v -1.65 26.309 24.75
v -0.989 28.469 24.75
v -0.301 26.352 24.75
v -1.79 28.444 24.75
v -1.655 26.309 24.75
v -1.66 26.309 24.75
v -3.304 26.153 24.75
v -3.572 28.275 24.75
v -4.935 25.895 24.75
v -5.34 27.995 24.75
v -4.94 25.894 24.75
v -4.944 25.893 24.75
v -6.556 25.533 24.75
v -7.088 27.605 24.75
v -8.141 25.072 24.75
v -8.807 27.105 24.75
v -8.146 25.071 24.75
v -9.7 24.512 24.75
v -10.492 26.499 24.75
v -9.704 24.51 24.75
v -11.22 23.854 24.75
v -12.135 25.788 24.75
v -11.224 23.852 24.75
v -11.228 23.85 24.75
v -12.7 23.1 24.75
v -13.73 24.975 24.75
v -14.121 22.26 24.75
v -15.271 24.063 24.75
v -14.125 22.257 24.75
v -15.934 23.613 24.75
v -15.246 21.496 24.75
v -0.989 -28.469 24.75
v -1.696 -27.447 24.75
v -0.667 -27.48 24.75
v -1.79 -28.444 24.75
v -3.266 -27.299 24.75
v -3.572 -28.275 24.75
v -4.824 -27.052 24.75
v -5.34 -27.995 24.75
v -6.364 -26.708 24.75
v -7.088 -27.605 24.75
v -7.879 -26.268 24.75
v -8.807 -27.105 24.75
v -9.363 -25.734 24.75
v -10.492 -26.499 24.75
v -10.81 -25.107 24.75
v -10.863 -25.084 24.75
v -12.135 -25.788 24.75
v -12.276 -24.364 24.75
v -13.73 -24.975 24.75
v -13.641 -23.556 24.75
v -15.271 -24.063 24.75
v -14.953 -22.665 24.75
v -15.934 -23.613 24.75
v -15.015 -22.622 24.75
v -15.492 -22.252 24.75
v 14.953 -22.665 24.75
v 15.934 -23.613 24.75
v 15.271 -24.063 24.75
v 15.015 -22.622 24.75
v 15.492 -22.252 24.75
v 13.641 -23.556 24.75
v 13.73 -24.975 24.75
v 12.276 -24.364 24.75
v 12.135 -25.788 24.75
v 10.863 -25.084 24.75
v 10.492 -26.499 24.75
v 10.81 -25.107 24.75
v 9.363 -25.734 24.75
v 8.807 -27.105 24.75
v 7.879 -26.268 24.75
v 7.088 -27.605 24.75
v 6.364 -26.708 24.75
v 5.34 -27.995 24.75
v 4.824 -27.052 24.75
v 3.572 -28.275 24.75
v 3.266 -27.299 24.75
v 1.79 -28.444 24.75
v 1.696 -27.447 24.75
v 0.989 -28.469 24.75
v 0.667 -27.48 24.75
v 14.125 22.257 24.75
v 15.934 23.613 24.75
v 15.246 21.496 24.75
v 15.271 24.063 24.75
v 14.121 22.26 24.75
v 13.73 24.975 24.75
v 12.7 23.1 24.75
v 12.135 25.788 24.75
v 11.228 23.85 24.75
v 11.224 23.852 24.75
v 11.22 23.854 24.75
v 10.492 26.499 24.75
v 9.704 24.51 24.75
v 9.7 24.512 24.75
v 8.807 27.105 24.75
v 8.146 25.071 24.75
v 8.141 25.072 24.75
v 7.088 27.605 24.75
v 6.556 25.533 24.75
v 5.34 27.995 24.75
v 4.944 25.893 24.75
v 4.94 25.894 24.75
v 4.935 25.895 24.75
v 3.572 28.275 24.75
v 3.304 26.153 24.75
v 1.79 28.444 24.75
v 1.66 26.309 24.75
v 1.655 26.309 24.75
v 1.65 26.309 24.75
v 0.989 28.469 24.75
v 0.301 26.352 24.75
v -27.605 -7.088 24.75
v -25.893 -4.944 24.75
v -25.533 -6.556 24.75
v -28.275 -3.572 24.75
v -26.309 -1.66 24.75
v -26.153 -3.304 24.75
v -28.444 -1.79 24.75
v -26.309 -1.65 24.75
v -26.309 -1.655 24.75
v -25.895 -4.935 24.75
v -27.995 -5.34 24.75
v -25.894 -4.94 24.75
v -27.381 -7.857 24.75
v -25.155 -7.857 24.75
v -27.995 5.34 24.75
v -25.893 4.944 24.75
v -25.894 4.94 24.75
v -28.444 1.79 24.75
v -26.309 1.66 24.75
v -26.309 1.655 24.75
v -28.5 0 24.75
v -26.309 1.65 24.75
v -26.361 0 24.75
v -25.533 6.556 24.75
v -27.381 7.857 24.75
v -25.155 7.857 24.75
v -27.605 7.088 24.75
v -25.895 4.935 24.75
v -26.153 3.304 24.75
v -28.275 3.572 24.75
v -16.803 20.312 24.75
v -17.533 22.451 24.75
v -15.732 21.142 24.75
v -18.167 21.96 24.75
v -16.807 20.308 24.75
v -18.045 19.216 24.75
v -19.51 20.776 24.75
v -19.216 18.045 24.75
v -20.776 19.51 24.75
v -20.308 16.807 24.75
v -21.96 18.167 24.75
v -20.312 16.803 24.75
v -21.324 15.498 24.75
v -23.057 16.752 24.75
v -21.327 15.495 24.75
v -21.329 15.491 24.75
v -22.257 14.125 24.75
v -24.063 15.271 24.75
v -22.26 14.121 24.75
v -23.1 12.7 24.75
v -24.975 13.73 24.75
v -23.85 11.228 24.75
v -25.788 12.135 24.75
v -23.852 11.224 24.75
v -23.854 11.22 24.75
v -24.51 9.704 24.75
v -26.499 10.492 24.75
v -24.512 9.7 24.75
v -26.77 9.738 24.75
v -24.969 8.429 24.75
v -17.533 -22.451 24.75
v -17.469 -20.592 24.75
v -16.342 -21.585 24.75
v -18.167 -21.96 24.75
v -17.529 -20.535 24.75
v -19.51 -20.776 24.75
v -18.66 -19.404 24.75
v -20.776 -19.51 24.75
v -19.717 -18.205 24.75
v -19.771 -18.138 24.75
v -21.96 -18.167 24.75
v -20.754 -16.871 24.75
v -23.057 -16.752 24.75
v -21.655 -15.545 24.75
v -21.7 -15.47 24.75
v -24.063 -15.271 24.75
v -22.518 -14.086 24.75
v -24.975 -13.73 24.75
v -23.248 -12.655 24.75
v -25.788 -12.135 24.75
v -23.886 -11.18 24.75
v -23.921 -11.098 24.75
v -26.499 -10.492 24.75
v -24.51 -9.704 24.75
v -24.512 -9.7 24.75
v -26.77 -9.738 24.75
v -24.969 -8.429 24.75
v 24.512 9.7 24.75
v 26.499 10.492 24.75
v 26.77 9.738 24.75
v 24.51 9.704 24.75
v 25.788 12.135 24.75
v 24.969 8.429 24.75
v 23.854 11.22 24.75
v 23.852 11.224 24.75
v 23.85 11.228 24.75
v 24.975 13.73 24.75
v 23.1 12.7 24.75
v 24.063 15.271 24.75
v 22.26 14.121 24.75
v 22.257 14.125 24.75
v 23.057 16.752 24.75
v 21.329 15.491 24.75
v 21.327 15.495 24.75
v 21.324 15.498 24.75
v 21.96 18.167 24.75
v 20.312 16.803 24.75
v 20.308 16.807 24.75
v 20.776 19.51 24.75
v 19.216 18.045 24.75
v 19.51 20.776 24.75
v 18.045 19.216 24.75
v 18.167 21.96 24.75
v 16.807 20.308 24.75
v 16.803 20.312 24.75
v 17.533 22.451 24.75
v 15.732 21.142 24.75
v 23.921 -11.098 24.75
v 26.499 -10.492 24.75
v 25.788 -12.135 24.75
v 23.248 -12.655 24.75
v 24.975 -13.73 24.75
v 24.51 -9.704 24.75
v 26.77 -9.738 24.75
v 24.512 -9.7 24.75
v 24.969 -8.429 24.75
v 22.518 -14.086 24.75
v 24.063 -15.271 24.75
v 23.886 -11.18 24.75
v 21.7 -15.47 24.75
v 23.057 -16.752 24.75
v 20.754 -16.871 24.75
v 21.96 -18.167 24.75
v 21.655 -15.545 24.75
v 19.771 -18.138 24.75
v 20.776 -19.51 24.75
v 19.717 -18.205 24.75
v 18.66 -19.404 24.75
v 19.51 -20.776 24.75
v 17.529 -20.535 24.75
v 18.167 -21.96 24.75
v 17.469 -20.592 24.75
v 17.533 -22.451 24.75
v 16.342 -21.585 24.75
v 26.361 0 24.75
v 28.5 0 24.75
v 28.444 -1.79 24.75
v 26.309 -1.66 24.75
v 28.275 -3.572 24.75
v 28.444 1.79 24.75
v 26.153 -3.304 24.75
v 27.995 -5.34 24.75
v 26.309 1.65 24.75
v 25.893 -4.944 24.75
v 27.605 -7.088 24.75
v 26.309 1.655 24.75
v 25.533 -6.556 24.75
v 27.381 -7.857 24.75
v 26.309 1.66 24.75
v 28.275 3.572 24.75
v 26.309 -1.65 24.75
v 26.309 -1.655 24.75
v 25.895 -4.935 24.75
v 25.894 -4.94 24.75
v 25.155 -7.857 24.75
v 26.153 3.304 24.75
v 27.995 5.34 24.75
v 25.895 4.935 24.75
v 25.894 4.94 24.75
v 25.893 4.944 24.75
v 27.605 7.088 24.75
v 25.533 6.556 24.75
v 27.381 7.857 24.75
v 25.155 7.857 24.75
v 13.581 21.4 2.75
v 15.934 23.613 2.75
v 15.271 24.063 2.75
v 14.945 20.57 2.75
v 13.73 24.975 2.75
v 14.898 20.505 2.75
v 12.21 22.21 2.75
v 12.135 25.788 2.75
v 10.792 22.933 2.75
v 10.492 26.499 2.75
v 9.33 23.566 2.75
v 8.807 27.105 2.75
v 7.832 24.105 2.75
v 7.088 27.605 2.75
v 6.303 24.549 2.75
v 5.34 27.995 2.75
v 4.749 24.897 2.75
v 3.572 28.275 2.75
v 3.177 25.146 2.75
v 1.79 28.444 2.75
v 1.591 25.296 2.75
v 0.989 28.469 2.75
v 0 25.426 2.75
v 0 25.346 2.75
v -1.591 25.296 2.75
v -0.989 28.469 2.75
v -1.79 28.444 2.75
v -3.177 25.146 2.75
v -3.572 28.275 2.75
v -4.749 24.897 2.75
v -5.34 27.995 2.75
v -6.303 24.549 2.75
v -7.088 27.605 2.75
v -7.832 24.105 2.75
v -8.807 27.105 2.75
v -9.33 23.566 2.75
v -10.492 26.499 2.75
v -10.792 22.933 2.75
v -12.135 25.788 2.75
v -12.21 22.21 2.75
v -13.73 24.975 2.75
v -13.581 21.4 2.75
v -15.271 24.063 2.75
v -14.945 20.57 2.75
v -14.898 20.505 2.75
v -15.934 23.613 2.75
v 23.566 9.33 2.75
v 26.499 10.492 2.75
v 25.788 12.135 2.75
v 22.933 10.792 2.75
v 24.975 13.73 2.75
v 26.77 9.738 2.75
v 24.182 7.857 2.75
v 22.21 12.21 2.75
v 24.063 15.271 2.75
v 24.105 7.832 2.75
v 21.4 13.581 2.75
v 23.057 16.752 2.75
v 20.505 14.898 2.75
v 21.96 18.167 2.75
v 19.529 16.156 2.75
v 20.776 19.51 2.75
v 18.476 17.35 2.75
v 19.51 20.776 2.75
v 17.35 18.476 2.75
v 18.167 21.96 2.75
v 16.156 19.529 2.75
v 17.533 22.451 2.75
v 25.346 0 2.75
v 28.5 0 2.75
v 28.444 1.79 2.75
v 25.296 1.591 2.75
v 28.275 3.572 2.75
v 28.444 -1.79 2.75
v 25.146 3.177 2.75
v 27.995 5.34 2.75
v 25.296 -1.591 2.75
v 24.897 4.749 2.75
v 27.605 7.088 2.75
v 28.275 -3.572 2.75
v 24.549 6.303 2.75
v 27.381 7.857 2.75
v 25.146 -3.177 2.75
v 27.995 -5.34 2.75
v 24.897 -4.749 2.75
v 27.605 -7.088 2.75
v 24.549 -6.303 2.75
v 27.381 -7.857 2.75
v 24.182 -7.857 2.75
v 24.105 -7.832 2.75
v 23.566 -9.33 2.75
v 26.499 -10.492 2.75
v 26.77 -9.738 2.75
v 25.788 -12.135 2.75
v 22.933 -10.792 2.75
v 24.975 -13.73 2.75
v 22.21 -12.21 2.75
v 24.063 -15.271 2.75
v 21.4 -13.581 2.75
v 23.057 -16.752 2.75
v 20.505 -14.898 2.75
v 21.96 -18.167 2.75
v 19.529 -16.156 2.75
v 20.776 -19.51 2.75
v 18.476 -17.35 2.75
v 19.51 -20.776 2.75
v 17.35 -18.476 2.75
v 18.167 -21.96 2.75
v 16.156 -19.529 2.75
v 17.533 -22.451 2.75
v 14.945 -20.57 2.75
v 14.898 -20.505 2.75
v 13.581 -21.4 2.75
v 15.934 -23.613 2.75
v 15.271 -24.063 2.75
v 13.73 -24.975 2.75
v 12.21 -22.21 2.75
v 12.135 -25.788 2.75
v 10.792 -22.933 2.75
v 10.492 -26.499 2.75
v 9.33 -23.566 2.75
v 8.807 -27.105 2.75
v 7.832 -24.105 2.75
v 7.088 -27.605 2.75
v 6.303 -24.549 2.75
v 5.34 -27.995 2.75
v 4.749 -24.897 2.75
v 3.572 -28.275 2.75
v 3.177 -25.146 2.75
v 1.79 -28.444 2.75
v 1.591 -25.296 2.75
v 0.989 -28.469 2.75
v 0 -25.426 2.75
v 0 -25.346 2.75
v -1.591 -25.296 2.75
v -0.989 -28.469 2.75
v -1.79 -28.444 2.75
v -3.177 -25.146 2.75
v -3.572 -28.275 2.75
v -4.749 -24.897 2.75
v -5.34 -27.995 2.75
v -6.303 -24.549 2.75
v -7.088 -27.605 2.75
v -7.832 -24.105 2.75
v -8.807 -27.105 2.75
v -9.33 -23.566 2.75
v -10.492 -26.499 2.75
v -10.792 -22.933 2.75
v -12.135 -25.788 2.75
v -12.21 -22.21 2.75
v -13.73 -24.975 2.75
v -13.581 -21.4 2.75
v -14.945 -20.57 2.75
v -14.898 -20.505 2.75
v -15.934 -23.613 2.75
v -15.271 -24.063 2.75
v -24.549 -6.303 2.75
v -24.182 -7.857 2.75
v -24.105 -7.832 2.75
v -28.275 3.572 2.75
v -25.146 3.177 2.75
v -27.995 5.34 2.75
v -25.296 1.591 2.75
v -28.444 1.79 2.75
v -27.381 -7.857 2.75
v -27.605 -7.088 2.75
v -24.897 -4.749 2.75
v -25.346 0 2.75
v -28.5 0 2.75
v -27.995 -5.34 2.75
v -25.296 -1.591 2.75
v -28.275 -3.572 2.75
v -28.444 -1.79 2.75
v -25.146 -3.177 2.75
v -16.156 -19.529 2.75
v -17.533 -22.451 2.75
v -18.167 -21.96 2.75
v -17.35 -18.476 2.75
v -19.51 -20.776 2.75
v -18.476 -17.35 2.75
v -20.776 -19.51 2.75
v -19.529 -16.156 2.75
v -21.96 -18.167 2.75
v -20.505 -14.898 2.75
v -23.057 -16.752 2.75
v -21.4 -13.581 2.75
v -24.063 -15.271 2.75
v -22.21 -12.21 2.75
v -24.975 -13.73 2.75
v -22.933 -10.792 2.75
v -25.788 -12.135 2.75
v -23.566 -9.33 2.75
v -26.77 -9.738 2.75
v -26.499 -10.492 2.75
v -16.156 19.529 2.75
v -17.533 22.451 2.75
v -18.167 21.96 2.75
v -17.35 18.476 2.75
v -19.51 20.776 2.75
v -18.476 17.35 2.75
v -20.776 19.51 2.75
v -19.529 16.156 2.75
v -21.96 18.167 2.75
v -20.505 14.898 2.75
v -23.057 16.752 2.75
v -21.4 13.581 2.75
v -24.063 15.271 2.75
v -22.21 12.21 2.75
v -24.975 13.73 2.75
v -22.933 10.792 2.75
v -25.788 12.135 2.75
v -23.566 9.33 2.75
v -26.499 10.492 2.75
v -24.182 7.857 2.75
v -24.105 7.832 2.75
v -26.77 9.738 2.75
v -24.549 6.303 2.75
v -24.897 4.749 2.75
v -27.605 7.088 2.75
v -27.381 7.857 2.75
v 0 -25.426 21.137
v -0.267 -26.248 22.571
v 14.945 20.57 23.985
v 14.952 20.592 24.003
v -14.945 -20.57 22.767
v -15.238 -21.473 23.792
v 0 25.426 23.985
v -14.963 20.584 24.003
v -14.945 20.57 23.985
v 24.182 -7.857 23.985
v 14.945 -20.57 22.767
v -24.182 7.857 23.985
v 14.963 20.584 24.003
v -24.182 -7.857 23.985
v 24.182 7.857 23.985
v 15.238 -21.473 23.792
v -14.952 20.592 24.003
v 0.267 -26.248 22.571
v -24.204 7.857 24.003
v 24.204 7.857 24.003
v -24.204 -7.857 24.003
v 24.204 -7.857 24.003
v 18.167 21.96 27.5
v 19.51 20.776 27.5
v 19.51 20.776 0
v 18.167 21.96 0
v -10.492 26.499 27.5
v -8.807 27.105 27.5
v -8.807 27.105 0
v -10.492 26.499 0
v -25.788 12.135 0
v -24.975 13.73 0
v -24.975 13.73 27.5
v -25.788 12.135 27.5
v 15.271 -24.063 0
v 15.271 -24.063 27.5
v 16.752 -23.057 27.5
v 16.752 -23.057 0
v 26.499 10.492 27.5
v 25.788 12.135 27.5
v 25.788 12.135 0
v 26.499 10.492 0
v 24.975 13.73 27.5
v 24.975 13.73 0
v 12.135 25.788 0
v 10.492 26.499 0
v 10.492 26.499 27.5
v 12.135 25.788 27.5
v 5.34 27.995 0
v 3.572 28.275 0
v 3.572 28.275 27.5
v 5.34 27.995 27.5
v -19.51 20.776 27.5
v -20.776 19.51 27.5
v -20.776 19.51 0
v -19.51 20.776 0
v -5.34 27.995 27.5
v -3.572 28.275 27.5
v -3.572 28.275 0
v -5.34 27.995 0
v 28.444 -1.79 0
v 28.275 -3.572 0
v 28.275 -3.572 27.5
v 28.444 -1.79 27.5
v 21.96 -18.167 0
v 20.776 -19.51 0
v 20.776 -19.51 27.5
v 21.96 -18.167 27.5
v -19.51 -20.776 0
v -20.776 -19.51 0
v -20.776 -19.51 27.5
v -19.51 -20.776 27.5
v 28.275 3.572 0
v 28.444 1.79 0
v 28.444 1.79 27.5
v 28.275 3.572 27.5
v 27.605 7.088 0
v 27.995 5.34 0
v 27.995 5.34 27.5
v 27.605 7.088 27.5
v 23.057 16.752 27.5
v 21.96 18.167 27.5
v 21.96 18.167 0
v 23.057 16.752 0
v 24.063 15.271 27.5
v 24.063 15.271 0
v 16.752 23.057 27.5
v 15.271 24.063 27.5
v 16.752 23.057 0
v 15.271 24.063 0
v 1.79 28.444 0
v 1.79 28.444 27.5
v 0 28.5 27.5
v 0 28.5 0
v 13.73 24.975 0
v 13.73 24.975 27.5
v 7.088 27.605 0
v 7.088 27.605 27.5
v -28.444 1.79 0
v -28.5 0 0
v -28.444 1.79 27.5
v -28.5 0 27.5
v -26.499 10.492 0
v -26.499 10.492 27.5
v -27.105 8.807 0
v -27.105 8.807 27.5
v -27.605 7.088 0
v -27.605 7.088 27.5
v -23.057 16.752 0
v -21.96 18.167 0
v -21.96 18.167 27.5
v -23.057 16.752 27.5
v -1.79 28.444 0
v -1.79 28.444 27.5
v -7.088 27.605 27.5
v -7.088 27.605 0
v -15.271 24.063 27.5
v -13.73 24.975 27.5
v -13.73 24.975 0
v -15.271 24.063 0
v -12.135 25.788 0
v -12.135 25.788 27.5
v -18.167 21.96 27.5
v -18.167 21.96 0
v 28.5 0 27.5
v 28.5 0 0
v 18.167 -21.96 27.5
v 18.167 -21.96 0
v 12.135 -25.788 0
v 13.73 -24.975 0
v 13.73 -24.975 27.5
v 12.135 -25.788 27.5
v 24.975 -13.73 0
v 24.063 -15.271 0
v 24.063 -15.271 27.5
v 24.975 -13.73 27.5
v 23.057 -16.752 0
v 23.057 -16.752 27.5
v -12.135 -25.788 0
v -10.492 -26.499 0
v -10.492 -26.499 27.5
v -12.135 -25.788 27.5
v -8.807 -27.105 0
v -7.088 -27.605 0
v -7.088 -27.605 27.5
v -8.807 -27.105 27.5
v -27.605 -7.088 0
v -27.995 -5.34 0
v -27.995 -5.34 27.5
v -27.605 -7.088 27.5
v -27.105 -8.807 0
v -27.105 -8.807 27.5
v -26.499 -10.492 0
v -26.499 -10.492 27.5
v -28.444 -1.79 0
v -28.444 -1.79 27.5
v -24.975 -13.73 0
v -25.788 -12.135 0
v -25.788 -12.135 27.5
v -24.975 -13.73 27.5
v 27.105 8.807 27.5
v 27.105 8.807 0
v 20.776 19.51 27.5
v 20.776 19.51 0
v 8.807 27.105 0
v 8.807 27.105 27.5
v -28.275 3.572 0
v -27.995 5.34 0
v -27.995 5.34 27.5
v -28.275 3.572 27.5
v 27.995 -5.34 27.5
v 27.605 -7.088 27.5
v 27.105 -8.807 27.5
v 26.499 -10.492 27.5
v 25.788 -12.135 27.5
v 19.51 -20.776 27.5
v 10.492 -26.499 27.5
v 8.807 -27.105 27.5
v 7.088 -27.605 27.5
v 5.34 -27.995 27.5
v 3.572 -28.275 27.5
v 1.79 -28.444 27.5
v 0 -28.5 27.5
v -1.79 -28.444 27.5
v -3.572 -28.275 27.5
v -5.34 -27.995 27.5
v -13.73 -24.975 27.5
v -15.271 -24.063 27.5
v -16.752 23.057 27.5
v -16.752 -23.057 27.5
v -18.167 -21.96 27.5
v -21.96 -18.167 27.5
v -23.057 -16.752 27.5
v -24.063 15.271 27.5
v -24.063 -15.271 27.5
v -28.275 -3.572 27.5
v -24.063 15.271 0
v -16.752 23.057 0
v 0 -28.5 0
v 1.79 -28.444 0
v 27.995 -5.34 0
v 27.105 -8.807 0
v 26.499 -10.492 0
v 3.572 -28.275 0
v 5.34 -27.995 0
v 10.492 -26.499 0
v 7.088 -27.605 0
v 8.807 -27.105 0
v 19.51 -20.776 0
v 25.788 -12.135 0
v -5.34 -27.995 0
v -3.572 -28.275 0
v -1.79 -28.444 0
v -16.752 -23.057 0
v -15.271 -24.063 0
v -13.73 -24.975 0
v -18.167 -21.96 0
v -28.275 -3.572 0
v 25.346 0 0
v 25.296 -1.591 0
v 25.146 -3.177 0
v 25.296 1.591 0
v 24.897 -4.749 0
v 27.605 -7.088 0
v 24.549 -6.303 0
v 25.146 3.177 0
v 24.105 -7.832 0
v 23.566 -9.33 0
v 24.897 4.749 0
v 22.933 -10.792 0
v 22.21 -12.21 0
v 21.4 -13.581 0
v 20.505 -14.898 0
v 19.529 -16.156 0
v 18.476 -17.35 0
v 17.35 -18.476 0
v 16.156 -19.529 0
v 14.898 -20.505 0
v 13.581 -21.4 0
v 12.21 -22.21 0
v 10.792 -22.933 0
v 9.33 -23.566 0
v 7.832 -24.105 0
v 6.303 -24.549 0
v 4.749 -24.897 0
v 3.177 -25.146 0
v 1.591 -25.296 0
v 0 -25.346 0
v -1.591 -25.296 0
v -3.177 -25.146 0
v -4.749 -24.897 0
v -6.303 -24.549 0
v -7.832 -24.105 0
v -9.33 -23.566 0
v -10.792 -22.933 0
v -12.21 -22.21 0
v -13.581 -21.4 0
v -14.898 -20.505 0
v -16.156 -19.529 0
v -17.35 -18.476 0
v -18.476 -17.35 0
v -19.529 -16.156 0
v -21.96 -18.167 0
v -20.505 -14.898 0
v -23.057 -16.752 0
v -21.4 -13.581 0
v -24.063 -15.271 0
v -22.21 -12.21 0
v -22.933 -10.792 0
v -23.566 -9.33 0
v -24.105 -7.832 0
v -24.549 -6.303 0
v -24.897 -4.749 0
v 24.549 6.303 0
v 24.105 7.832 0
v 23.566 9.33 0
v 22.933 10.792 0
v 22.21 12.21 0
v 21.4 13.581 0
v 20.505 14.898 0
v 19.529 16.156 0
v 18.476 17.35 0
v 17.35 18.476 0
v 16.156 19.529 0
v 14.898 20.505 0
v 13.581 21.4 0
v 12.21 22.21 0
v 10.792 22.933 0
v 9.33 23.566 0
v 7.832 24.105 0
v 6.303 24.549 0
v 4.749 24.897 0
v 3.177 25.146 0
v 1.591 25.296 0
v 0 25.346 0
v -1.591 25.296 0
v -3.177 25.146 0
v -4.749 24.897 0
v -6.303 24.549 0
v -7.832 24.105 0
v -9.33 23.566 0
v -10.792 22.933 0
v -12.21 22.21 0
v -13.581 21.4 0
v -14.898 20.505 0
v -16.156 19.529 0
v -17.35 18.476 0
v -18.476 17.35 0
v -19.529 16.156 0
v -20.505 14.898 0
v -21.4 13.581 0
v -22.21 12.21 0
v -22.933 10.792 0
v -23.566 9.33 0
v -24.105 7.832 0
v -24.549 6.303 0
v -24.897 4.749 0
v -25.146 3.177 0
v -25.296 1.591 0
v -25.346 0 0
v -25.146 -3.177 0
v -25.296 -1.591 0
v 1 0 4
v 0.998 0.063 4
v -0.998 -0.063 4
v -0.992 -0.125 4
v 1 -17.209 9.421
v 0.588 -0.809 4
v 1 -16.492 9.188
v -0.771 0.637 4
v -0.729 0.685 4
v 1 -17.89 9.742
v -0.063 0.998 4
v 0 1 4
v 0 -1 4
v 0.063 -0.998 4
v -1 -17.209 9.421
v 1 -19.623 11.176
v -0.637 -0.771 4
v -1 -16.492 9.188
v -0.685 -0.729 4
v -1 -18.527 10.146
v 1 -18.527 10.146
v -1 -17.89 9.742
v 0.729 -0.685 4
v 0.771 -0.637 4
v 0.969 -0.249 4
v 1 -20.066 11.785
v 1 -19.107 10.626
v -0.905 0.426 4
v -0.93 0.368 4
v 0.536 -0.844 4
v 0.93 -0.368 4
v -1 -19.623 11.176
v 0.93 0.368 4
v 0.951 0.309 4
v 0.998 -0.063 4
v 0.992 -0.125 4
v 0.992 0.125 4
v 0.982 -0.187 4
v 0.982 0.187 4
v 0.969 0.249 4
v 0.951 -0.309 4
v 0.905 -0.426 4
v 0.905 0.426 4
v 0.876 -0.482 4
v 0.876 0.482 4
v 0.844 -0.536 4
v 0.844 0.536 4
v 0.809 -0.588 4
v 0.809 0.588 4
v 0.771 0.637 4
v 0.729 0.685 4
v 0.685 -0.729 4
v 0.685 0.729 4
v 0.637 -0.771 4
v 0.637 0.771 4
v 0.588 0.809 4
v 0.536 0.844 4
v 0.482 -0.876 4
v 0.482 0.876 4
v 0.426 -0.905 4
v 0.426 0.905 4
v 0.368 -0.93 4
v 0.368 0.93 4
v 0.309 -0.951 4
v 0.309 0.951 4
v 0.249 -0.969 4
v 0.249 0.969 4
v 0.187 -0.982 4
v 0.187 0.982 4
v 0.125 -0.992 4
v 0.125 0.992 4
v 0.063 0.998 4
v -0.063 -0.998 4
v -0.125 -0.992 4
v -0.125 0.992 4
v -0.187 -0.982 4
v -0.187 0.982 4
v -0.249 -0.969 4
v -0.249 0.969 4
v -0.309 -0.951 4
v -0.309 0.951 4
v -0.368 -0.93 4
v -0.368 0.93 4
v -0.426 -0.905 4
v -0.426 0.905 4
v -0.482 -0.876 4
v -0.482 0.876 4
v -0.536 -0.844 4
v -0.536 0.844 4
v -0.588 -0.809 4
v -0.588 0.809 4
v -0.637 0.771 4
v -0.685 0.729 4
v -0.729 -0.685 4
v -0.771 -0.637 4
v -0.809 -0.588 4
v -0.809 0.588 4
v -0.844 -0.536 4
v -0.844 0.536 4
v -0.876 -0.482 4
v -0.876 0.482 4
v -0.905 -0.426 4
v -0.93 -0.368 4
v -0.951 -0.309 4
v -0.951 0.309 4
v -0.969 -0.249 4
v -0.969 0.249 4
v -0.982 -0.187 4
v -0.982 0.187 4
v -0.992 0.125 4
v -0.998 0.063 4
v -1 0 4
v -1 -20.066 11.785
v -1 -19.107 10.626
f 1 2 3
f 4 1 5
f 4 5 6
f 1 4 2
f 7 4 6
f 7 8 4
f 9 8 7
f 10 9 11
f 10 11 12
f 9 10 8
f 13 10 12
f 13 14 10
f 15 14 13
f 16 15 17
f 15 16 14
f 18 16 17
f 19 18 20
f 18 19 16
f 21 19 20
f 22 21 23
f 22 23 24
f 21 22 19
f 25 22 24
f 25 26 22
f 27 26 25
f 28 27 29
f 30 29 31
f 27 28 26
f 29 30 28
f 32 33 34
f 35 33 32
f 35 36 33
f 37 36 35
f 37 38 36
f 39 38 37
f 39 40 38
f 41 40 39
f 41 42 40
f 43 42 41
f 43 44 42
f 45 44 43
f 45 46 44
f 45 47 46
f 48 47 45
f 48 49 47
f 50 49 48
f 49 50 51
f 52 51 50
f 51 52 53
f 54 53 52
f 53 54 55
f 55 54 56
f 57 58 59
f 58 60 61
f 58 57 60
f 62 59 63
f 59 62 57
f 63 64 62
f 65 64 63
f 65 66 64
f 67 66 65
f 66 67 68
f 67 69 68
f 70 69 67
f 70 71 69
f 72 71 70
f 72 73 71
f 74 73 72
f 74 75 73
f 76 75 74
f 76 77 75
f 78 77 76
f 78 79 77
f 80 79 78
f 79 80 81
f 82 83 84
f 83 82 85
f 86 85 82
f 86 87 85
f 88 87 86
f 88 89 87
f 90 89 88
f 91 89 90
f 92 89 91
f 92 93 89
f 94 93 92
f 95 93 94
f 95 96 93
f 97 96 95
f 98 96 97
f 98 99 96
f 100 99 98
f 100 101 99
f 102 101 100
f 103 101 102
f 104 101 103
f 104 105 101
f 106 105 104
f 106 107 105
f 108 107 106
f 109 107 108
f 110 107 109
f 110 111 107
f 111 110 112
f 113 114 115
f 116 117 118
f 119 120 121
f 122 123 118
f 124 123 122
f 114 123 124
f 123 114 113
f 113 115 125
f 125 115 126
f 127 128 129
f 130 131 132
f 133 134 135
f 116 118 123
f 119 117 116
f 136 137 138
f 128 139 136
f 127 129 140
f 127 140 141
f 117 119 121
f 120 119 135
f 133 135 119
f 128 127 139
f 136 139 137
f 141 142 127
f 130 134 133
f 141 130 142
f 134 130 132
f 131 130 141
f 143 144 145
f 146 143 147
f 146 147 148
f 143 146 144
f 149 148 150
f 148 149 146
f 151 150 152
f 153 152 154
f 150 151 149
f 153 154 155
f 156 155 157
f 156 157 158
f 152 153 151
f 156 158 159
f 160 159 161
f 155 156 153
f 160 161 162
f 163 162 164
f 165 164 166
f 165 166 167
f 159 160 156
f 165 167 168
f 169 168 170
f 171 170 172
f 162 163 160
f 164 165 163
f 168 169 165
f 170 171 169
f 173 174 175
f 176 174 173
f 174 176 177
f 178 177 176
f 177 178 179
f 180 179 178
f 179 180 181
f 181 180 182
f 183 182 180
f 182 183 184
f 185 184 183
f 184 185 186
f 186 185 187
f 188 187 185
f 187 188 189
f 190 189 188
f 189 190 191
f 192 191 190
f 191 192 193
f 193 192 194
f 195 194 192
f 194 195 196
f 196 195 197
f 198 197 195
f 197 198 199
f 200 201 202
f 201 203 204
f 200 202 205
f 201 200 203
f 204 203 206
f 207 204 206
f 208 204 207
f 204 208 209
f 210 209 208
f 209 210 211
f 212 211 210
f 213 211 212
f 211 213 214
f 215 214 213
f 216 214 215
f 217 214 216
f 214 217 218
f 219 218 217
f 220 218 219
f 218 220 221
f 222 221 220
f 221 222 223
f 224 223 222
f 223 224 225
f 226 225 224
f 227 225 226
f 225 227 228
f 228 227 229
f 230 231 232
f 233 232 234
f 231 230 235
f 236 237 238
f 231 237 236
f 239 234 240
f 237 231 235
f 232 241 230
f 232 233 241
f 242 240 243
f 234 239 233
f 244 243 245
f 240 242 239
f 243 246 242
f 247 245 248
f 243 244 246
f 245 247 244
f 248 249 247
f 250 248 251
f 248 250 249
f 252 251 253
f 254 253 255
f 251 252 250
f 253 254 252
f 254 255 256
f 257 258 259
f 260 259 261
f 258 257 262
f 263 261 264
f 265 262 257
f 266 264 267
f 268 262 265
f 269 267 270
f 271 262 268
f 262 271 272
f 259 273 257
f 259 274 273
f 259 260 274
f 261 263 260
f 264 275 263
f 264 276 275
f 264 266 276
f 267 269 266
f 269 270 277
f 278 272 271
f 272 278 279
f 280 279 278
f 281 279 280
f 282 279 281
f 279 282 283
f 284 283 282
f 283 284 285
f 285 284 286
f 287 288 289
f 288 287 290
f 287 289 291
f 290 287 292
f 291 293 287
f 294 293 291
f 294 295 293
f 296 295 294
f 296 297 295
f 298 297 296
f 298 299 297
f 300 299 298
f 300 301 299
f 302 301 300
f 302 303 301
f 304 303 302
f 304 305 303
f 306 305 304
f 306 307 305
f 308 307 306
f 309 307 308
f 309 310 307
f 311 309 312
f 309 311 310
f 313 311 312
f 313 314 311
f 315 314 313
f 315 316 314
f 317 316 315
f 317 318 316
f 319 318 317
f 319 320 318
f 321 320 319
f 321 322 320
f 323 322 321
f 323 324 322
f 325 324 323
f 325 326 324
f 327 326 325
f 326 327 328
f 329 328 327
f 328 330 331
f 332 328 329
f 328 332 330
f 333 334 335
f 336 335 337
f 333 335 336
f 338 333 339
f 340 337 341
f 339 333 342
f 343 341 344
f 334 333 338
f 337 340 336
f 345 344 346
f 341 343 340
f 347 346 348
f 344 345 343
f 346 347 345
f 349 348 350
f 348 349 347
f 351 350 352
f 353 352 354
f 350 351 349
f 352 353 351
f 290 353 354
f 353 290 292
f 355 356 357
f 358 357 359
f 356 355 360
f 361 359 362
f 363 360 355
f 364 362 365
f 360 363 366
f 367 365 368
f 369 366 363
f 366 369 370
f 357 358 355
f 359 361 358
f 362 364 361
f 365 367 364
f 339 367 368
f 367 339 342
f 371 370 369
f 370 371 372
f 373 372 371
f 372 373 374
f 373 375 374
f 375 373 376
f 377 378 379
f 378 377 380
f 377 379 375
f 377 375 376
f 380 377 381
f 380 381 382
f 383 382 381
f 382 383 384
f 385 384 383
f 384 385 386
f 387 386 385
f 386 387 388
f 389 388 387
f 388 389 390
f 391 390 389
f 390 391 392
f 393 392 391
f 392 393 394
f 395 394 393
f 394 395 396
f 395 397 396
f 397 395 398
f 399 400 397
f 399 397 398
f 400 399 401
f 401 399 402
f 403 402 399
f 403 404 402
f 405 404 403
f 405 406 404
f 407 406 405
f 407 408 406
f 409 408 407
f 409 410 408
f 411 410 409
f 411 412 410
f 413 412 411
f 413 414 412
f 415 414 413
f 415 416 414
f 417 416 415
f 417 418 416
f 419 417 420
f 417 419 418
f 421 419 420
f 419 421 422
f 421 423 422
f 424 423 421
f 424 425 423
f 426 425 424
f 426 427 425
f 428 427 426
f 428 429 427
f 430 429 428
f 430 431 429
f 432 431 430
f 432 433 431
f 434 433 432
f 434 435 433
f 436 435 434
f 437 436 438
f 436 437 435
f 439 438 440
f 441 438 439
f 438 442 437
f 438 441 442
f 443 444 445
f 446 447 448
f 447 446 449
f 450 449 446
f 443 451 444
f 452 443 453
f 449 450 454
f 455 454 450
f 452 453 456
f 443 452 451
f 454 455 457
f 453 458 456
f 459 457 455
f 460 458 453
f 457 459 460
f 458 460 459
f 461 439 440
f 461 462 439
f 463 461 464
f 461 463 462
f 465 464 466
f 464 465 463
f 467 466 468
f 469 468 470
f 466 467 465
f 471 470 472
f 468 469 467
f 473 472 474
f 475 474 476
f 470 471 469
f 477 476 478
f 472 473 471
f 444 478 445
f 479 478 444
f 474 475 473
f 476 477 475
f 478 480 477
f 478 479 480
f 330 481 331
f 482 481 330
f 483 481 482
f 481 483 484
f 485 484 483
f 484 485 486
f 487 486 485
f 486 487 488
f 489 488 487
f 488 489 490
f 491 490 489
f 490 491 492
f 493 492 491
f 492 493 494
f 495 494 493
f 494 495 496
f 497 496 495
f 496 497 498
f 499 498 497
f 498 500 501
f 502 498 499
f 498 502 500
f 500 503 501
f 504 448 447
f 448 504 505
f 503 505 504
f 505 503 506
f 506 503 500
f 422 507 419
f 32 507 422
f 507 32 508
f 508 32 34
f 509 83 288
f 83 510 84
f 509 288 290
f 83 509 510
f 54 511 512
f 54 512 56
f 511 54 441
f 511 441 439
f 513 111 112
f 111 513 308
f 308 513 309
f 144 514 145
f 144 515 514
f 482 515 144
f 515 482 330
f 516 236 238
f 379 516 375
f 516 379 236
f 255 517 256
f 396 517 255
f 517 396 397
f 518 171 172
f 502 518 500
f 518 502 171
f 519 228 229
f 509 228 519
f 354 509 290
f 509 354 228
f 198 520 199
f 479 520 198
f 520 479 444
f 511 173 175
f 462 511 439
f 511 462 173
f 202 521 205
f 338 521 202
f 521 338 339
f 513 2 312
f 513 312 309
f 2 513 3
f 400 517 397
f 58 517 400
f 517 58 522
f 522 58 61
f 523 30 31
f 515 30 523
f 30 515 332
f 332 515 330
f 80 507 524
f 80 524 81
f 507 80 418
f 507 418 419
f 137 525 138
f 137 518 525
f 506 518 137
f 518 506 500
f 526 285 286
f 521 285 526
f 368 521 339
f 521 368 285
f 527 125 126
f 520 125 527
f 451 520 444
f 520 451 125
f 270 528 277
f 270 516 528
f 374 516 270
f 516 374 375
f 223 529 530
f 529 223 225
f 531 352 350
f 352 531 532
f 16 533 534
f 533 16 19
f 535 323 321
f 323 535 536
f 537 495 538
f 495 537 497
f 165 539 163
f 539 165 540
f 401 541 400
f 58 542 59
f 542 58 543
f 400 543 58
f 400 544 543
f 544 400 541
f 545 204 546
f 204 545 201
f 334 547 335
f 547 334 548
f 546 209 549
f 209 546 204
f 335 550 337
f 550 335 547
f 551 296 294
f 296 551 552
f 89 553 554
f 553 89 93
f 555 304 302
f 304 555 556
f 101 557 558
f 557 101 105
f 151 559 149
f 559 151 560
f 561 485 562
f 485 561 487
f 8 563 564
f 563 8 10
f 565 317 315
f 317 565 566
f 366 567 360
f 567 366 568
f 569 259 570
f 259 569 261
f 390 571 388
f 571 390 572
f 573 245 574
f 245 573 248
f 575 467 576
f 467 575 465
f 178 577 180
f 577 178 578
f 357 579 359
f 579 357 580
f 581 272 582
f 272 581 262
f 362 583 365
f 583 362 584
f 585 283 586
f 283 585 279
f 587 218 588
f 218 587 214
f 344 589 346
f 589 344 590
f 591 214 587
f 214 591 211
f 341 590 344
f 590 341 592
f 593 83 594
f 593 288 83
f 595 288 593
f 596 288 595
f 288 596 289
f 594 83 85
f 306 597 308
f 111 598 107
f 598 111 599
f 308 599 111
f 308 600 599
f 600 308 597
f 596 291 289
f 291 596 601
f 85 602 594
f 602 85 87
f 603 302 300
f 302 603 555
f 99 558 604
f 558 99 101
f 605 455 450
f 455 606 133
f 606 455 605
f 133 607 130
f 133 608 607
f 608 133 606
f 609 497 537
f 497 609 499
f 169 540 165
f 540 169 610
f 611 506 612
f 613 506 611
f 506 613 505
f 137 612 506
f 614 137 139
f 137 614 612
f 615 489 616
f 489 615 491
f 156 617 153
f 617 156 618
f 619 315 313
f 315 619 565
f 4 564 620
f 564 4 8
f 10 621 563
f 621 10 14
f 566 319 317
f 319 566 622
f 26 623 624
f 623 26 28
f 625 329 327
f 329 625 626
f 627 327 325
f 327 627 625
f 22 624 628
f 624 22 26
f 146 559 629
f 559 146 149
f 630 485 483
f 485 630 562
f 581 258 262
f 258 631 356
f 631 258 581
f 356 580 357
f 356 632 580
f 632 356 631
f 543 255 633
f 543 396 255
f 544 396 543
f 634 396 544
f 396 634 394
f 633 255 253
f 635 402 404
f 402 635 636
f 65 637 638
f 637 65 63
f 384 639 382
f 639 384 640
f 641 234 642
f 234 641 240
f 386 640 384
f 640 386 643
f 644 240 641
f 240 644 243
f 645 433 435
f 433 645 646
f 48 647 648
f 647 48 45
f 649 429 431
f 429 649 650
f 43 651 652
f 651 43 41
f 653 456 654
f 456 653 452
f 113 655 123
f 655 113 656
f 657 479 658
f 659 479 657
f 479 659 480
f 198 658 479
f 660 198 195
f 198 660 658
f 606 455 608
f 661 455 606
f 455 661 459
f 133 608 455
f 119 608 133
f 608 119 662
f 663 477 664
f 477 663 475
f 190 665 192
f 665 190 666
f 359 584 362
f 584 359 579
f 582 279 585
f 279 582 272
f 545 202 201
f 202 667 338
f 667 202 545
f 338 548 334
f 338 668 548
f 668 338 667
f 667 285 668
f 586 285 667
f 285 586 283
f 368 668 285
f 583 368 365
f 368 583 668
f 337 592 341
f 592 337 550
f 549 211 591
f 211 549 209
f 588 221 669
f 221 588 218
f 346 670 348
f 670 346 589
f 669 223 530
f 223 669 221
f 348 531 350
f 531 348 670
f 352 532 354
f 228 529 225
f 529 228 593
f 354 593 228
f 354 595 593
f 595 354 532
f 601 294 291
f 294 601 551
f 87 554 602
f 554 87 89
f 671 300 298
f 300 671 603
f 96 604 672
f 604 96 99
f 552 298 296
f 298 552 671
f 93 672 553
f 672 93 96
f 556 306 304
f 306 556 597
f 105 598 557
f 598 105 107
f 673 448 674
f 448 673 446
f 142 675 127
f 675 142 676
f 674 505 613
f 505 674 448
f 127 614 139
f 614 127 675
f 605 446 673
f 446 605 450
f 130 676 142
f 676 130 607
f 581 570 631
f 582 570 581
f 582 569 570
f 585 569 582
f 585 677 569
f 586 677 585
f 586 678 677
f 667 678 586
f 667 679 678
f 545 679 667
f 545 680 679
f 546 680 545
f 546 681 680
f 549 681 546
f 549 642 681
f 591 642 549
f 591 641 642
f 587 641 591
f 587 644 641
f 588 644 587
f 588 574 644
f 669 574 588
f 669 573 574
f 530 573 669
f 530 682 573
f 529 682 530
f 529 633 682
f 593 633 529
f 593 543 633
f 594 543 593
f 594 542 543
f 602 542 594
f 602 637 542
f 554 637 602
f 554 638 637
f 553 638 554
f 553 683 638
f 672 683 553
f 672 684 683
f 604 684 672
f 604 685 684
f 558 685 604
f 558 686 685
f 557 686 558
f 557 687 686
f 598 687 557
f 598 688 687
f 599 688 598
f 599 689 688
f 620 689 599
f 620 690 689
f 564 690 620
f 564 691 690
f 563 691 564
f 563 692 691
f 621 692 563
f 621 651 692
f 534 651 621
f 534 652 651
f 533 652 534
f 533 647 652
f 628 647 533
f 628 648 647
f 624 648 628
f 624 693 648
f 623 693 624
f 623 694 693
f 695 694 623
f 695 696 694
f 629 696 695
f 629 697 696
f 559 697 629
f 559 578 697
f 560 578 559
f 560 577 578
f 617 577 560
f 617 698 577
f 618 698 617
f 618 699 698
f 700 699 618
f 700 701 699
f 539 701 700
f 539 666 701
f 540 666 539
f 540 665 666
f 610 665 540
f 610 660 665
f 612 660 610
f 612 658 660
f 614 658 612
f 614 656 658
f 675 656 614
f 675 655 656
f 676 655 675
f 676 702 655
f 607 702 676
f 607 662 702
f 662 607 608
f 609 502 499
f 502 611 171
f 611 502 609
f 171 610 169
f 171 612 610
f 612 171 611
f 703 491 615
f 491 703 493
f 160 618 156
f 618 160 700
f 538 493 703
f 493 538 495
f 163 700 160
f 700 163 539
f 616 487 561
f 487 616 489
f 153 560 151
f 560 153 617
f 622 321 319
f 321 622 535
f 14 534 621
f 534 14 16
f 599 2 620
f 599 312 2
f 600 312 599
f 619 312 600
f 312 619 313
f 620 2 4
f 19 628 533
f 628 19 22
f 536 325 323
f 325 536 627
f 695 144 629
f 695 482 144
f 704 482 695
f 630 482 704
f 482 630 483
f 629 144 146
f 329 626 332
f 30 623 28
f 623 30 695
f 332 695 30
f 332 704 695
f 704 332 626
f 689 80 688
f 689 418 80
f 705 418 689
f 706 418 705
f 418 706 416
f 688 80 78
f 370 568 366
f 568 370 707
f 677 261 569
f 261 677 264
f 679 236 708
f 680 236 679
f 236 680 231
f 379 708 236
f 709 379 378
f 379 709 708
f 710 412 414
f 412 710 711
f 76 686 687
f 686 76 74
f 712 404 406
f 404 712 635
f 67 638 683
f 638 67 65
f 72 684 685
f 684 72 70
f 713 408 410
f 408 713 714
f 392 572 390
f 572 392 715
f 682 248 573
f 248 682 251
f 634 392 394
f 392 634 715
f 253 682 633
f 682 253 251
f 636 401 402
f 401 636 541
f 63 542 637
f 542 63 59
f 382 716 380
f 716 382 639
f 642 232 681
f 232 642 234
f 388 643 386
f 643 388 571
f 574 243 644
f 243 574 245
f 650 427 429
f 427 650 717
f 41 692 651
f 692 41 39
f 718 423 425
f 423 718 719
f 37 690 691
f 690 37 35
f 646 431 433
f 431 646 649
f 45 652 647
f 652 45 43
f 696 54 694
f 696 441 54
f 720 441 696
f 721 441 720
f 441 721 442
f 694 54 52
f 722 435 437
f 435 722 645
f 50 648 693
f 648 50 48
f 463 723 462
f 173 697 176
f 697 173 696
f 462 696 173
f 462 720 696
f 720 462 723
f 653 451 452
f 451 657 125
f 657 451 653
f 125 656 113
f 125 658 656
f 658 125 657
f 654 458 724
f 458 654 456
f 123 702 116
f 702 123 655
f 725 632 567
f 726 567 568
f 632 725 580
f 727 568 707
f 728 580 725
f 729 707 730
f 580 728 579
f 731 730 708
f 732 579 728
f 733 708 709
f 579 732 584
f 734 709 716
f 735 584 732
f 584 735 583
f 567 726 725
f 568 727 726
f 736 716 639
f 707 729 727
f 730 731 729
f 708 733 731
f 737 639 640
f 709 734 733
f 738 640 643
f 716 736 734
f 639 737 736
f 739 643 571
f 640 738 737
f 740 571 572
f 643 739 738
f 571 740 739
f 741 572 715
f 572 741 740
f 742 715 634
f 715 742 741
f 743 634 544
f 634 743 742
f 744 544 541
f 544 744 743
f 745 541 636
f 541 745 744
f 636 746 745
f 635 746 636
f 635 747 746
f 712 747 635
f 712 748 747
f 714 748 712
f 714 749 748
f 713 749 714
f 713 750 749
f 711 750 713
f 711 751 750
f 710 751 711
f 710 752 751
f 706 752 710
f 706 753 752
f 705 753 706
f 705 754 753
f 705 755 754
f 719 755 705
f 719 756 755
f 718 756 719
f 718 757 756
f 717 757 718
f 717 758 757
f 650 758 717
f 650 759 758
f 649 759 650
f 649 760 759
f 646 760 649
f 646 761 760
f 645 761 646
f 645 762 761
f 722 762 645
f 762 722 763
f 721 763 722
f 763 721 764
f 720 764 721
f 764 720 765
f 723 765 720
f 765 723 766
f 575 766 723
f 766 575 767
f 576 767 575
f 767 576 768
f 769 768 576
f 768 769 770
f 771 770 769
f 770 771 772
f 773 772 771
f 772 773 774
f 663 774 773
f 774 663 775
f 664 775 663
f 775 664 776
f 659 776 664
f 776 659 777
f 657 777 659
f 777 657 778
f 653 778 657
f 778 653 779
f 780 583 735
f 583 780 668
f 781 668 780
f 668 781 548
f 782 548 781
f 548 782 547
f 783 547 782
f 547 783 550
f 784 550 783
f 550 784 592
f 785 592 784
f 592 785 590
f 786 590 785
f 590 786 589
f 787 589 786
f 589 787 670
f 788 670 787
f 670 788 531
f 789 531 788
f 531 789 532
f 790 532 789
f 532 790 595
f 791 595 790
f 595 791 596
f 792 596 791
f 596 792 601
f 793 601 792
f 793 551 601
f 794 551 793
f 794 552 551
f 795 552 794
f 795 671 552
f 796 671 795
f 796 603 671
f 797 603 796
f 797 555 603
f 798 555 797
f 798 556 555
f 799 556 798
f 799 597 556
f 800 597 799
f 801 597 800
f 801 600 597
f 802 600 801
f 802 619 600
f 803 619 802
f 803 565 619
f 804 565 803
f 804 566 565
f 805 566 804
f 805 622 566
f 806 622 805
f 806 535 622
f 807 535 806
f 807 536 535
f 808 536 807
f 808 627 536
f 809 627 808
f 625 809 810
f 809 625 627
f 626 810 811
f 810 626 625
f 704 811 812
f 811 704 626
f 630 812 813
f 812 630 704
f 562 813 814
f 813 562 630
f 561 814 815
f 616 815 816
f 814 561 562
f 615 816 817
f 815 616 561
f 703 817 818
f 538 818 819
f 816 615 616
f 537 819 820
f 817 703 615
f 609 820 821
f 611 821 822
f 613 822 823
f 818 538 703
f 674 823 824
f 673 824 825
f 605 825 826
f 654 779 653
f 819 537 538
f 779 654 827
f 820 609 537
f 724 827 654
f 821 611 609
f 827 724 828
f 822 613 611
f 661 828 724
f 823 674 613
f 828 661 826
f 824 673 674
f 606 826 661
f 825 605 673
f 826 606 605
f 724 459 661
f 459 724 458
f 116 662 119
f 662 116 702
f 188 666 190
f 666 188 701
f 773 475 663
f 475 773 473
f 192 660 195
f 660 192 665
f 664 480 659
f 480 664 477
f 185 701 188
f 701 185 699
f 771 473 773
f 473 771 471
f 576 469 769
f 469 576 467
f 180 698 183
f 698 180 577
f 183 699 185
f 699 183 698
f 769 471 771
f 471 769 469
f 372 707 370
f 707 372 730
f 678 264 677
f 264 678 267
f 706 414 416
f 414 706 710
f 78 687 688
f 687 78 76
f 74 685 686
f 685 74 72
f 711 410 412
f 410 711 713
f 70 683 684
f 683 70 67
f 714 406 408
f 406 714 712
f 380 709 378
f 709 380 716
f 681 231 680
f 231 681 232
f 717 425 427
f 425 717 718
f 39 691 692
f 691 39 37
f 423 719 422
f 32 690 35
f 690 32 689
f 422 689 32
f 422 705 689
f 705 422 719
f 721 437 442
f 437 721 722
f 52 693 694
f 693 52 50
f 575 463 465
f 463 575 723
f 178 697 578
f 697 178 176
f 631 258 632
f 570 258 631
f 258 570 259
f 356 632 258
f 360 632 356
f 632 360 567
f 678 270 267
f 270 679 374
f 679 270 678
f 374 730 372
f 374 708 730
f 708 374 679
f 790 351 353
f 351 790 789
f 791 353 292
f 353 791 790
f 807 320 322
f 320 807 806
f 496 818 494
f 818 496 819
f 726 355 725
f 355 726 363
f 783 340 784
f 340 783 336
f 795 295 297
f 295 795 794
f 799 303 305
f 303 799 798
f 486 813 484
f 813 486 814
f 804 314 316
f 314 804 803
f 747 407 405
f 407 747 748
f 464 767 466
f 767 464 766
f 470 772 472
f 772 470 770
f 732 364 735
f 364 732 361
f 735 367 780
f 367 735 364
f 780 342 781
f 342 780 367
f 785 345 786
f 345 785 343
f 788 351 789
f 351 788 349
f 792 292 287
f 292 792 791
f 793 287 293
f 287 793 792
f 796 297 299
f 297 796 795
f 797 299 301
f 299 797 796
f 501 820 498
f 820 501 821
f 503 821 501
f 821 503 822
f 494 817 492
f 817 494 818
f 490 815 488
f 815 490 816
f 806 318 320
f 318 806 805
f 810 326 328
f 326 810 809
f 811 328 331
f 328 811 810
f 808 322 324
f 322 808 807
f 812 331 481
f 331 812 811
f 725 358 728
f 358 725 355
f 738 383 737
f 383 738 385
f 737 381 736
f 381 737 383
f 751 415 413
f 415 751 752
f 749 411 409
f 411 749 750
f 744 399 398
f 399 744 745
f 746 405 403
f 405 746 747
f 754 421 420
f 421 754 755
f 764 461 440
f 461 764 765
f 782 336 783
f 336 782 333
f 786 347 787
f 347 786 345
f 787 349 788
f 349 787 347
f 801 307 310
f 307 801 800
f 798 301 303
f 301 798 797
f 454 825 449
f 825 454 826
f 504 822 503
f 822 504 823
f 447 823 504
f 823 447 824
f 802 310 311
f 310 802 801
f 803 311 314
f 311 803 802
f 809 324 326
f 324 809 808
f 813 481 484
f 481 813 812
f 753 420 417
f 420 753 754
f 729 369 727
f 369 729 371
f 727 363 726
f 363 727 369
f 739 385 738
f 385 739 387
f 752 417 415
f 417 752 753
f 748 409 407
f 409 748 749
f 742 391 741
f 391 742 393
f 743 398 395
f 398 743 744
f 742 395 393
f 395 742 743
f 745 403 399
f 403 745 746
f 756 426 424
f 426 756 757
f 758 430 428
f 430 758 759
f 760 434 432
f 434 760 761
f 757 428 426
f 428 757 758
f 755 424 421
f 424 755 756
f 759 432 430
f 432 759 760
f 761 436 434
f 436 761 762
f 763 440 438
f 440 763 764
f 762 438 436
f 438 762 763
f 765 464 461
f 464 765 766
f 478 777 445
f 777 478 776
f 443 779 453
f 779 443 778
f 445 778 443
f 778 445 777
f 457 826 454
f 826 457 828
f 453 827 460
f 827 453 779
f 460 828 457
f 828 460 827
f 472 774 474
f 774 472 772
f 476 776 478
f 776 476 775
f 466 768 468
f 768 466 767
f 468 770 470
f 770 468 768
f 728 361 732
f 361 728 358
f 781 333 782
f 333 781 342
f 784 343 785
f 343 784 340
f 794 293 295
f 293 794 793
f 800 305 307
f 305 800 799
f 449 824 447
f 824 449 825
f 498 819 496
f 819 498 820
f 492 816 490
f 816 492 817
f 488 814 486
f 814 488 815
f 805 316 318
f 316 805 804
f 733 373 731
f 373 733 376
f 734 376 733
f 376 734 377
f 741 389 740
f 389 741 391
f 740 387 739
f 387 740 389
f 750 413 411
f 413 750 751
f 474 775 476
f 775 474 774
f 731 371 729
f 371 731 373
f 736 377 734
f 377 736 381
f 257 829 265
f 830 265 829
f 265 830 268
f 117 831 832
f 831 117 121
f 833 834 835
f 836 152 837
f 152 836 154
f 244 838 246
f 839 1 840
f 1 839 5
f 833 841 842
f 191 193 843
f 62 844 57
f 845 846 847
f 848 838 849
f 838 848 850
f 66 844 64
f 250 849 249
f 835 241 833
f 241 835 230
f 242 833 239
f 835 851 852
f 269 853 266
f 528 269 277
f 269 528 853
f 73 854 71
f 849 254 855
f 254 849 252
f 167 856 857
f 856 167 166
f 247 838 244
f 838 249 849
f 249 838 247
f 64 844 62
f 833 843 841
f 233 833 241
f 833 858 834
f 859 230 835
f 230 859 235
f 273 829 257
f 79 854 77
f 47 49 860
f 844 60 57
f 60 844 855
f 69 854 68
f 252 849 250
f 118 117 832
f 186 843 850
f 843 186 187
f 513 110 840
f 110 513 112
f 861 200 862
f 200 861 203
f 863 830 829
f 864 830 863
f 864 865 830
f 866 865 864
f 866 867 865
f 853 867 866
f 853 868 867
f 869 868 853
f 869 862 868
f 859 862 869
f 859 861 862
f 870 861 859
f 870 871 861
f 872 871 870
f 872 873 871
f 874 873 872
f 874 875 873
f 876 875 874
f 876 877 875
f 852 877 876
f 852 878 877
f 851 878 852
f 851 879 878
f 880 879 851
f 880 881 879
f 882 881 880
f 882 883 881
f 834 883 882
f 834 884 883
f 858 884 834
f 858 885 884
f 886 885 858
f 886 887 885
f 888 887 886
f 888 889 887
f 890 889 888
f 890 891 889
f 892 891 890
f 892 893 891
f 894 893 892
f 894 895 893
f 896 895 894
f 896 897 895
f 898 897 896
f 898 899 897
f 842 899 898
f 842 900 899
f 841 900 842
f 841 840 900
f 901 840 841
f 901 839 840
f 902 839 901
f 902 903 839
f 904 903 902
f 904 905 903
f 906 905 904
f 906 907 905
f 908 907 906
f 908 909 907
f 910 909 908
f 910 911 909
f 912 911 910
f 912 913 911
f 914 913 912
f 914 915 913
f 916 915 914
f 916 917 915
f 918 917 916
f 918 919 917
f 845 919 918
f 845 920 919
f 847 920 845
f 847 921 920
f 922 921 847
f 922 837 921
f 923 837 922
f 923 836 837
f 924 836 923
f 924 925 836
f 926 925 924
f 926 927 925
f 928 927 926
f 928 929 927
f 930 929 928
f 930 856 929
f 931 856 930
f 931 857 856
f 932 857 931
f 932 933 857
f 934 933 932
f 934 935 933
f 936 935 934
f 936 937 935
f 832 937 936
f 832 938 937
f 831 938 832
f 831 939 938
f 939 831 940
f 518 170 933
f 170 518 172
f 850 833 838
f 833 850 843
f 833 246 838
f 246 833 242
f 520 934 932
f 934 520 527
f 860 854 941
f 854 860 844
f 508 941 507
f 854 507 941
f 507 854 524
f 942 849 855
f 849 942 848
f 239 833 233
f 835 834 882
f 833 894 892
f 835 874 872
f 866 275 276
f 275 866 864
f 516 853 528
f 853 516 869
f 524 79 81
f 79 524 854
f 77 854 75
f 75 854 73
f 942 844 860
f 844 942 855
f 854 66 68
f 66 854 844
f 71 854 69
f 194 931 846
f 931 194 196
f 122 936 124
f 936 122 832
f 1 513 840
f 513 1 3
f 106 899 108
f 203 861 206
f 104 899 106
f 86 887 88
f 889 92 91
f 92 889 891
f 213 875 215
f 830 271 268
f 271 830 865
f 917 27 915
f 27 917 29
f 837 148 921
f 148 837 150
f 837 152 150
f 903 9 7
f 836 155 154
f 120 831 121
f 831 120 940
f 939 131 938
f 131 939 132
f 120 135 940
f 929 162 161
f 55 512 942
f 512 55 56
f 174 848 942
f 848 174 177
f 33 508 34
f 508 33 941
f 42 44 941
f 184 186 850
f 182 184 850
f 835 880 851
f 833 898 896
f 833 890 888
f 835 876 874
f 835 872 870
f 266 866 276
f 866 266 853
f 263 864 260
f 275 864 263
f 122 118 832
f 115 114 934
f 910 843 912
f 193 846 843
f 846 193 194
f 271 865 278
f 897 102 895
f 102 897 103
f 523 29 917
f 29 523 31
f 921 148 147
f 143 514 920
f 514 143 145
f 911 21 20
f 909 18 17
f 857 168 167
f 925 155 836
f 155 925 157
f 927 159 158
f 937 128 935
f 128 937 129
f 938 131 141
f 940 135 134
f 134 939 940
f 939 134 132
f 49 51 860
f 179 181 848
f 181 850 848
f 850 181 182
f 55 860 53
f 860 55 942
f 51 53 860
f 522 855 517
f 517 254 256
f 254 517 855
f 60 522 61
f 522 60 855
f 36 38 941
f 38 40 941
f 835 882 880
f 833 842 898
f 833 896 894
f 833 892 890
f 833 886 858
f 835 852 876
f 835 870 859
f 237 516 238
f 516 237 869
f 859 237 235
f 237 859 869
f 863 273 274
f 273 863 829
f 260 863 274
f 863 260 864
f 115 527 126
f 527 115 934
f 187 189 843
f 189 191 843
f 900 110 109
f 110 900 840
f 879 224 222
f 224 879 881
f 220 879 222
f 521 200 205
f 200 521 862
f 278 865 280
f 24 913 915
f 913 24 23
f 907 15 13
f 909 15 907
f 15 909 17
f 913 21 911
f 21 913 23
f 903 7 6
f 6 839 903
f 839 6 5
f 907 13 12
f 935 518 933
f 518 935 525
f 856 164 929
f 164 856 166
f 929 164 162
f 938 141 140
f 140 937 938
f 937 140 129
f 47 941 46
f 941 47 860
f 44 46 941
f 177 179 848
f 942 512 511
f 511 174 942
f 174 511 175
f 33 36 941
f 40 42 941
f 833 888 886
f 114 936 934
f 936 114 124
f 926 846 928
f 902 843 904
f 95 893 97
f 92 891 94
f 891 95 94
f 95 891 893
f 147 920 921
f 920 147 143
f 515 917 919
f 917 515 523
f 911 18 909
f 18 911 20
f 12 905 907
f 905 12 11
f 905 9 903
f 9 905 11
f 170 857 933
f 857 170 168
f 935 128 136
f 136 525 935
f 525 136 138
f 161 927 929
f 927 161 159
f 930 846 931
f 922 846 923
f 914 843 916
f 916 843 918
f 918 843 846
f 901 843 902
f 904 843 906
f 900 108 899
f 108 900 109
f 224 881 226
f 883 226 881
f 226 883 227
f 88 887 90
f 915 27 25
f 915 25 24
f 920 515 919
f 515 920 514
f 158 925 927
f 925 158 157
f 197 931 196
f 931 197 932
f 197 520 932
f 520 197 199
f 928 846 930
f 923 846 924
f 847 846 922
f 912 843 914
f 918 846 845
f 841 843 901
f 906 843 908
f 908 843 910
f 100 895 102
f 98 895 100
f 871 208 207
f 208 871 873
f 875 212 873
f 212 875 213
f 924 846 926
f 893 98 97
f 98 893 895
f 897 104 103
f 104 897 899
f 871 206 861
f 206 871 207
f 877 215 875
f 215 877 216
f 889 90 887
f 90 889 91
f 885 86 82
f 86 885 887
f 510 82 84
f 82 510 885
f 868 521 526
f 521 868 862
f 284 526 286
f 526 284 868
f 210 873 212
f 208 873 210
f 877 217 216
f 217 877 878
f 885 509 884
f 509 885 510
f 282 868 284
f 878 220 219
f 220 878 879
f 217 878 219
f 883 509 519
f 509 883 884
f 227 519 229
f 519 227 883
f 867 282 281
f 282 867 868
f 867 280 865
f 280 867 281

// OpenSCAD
speaker_diameter = 55; // messing with this until we get a good fit, not the actual size

union(){
	difference(){
		// top bounding "box"
		cylinder(r=(speaker_diameter/2)+1,h=speaker_diameter/2,$fn=100);
		
		// side holes
		for(i=[1:5]){
			rotate([0,0,(i * 360)/5]){
				translate([-(speaker_diameter/2)-1,-speaker_diameter/7,speaker_diameter/20]){
					cube([speaker_diameter+2, speaker_diameter/3.5, speaker_diameter/2.5]);
				}
			}
		}
		
		// bottom hole
		translate([0,0,-1]){
			cylinder(r=speaker_diameter/2.17,h=4,$fn=100);
		}
	}

	// dispirtion cone
	translate([0,0,4]){
		hull(){
			cylinder(r2=(speaker_diameter/2)+1, r1=1, h=(speaker_diameter/2)-5,$fn=100);
			translate([-1,-15,11]){
				rotate([0,90,0]){
					cylinder(r=6,h=2,$fn=50);
				}
			}
		}
	}
}
